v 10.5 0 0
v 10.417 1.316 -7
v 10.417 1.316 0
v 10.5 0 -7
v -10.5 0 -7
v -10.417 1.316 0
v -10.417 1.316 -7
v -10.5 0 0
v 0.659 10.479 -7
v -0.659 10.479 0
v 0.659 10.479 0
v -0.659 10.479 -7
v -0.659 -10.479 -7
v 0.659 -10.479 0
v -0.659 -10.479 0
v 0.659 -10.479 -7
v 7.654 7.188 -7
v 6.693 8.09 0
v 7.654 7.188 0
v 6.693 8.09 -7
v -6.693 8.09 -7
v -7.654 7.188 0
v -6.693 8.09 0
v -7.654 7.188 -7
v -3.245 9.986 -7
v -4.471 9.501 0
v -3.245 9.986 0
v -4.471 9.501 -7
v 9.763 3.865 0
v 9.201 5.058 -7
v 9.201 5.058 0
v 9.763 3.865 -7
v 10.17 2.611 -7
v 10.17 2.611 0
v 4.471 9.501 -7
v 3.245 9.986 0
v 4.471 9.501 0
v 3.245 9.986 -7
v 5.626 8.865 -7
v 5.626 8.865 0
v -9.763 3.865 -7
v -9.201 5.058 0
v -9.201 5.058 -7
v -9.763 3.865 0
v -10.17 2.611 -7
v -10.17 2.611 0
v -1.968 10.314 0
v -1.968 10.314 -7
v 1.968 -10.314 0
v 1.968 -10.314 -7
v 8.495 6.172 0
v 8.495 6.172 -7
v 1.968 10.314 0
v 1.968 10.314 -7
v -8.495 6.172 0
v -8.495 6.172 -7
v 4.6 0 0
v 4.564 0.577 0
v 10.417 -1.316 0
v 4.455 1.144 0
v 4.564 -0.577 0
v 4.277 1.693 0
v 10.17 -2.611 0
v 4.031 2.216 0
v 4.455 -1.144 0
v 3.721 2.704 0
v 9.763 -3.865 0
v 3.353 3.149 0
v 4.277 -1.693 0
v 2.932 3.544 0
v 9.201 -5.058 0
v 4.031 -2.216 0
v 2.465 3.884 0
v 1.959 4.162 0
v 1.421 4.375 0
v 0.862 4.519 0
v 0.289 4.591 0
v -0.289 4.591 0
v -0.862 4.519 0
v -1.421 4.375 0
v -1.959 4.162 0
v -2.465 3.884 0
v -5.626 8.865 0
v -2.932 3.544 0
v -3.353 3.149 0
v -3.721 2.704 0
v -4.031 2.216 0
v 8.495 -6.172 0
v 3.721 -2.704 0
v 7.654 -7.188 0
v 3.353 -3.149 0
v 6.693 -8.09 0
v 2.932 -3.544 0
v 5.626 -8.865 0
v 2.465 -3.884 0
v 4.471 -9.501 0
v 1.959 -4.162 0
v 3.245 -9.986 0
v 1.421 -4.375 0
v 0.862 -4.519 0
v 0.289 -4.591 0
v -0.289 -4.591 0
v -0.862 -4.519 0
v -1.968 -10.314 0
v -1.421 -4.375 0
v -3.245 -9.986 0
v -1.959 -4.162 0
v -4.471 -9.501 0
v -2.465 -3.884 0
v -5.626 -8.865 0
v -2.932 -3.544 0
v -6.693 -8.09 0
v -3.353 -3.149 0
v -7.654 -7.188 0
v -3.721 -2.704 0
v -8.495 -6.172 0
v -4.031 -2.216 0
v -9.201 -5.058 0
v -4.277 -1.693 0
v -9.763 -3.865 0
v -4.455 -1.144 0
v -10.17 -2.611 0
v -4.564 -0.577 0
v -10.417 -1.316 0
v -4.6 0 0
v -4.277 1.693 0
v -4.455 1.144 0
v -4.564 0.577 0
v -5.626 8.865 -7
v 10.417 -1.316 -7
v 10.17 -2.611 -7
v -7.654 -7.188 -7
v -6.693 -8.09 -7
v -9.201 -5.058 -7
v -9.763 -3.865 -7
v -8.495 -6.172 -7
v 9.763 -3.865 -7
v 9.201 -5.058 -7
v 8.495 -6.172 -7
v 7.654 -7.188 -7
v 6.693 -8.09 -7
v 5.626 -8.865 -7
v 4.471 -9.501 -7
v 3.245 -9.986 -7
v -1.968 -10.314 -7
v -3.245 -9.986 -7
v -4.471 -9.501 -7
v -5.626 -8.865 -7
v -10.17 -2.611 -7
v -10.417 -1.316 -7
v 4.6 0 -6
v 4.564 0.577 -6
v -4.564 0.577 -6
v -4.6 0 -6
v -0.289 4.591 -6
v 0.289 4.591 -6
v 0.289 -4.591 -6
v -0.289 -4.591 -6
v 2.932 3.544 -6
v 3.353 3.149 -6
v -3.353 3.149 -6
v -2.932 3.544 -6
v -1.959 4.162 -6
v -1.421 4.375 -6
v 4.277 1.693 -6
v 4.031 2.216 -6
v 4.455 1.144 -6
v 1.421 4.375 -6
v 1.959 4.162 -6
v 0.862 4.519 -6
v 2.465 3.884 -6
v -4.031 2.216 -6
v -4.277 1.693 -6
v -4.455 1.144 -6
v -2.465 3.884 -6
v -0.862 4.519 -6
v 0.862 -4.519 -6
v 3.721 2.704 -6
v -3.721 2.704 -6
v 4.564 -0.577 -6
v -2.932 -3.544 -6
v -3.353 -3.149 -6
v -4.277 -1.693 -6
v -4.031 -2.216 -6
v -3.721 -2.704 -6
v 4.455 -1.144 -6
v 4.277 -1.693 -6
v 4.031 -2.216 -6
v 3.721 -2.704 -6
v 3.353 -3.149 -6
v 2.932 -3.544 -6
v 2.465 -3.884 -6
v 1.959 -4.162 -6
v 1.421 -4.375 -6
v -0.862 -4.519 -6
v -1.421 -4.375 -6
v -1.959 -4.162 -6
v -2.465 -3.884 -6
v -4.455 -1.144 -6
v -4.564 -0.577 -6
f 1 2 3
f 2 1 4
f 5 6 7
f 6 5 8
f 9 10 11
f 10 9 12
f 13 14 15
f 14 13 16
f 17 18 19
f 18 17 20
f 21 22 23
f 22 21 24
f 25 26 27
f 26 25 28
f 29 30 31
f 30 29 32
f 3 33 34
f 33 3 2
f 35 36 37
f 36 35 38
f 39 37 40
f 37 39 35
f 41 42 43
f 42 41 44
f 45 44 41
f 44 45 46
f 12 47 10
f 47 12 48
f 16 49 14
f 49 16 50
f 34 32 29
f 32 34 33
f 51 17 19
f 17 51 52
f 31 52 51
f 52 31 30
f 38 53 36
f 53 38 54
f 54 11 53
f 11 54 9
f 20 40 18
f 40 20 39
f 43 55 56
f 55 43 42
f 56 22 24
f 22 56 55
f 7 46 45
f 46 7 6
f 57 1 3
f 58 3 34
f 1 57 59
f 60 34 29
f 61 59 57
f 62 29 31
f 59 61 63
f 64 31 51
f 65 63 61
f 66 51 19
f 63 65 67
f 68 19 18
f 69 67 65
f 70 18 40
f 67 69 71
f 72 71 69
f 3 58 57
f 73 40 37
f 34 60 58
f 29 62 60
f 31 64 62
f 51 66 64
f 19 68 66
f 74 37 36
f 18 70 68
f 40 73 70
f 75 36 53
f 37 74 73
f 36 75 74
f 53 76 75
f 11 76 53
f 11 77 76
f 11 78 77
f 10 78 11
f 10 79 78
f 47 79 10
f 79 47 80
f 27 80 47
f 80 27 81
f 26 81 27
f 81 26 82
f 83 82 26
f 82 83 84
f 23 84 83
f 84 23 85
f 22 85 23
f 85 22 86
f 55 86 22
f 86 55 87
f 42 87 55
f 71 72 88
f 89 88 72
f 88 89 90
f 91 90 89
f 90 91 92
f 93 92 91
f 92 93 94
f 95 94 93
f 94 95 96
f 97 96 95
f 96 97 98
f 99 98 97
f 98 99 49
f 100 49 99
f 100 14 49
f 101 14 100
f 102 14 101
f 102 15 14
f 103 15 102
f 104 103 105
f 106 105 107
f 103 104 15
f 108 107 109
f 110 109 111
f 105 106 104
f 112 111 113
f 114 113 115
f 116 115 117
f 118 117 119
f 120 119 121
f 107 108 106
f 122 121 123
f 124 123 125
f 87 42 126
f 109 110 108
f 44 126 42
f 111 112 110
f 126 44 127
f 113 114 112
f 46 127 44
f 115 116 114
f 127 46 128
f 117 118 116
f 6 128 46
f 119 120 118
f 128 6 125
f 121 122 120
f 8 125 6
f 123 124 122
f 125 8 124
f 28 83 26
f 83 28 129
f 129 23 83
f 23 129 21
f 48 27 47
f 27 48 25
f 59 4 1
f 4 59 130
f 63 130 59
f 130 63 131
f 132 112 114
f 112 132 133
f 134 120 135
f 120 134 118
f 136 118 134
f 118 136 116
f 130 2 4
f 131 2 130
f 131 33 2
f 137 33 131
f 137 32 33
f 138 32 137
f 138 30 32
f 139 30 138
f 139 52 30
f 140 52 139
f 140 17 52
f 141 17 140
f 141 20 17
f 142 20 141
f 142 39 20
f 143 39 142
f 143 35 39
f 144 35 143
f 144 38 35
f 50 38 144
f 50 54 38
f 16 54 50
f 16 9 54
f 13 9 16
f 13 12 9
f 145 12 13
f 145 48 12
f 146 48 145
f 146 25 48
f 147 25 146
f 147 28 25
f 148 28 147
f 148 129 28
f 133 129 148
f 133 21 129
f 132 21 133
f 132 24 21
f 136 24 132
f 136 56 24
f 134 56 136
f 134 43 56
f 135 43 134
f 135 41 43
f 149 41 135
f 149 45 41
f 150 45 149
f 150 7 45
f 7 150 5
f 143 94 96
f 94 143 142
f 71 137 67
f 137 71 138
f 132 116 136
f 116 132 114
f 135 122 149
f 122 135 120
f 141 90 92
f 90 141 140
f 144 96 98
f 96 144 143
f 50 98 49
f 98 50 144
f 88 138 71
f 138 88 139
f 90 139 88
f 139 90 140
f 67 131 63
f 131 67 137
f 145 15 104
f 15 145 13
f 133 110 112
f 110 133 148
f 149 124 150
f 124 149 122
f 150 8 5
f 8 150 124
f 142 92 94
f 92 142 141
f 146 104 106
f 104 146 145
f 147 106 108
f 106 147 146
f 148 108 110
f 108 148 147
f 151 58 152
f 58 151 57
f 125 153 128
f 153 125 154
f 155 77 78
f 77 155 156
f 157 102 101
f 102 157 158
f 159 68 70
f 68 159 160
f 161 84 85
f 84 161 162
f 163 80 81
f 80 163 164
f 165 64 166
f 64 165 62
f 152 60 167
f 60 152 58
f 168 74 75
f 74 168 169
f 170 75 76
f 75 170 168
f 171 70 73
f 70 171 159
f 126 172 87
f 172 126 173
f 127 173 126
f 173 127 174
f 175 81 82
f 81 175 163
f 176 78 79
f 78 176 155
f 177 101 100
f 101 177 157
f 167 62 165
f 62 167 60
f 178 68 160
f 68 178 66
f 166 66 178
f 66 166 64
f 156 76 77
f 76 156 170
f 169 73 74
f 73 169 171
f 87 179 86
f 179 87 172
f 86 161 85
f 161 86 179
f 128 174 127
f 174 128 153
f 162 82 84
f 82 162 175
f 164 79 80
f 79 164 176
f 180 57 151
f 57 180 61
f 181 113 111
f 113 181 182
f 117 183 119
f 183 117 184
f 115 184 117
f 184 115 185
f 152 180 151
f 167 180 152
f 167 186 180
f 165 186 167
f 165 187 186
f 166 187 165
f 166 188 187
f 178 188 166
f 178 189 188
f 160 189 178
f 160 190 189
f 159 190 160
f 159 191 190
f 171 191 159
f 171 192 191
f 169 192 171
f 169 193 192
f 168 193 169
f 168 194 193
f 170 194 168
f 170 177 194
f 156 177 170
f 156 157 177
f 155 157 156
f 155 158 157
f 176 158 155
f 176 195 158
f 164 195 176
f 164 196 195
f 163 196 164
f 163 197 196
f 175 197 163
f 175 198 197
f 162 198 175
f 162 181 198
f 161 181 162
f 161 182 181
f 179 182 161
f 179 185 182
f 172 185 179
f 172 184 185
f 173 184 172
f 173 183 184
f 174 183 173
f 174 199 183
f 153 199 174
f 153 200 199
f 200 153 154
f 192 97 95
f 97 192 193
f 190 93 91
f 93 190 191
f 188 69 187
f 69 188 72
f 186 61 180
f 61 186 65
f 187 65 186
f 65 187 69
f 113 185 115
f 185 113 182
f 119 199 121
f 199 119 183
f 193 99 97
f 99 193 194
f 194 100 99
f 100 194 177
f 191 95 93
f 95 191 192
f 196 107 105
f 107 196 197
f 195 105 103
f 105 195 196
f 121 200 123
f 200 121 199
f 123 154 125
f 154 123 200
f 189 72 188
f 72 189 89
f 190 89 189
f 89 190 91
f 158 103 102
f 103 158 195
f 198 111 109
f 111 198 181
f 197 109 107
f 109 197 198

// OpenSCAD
$fn = 50;


difference() {
	union() {
		translate(v = [0, 0, -7.0000000000]) {
			cylinder(h = 7, r = 10.5000000000);
		}
	}
	union() {
		#translate(v = [0, 0, -6.0000000000]) {
			cylinder(h = 6, r = 4.6000000000);
		}
	}
}
